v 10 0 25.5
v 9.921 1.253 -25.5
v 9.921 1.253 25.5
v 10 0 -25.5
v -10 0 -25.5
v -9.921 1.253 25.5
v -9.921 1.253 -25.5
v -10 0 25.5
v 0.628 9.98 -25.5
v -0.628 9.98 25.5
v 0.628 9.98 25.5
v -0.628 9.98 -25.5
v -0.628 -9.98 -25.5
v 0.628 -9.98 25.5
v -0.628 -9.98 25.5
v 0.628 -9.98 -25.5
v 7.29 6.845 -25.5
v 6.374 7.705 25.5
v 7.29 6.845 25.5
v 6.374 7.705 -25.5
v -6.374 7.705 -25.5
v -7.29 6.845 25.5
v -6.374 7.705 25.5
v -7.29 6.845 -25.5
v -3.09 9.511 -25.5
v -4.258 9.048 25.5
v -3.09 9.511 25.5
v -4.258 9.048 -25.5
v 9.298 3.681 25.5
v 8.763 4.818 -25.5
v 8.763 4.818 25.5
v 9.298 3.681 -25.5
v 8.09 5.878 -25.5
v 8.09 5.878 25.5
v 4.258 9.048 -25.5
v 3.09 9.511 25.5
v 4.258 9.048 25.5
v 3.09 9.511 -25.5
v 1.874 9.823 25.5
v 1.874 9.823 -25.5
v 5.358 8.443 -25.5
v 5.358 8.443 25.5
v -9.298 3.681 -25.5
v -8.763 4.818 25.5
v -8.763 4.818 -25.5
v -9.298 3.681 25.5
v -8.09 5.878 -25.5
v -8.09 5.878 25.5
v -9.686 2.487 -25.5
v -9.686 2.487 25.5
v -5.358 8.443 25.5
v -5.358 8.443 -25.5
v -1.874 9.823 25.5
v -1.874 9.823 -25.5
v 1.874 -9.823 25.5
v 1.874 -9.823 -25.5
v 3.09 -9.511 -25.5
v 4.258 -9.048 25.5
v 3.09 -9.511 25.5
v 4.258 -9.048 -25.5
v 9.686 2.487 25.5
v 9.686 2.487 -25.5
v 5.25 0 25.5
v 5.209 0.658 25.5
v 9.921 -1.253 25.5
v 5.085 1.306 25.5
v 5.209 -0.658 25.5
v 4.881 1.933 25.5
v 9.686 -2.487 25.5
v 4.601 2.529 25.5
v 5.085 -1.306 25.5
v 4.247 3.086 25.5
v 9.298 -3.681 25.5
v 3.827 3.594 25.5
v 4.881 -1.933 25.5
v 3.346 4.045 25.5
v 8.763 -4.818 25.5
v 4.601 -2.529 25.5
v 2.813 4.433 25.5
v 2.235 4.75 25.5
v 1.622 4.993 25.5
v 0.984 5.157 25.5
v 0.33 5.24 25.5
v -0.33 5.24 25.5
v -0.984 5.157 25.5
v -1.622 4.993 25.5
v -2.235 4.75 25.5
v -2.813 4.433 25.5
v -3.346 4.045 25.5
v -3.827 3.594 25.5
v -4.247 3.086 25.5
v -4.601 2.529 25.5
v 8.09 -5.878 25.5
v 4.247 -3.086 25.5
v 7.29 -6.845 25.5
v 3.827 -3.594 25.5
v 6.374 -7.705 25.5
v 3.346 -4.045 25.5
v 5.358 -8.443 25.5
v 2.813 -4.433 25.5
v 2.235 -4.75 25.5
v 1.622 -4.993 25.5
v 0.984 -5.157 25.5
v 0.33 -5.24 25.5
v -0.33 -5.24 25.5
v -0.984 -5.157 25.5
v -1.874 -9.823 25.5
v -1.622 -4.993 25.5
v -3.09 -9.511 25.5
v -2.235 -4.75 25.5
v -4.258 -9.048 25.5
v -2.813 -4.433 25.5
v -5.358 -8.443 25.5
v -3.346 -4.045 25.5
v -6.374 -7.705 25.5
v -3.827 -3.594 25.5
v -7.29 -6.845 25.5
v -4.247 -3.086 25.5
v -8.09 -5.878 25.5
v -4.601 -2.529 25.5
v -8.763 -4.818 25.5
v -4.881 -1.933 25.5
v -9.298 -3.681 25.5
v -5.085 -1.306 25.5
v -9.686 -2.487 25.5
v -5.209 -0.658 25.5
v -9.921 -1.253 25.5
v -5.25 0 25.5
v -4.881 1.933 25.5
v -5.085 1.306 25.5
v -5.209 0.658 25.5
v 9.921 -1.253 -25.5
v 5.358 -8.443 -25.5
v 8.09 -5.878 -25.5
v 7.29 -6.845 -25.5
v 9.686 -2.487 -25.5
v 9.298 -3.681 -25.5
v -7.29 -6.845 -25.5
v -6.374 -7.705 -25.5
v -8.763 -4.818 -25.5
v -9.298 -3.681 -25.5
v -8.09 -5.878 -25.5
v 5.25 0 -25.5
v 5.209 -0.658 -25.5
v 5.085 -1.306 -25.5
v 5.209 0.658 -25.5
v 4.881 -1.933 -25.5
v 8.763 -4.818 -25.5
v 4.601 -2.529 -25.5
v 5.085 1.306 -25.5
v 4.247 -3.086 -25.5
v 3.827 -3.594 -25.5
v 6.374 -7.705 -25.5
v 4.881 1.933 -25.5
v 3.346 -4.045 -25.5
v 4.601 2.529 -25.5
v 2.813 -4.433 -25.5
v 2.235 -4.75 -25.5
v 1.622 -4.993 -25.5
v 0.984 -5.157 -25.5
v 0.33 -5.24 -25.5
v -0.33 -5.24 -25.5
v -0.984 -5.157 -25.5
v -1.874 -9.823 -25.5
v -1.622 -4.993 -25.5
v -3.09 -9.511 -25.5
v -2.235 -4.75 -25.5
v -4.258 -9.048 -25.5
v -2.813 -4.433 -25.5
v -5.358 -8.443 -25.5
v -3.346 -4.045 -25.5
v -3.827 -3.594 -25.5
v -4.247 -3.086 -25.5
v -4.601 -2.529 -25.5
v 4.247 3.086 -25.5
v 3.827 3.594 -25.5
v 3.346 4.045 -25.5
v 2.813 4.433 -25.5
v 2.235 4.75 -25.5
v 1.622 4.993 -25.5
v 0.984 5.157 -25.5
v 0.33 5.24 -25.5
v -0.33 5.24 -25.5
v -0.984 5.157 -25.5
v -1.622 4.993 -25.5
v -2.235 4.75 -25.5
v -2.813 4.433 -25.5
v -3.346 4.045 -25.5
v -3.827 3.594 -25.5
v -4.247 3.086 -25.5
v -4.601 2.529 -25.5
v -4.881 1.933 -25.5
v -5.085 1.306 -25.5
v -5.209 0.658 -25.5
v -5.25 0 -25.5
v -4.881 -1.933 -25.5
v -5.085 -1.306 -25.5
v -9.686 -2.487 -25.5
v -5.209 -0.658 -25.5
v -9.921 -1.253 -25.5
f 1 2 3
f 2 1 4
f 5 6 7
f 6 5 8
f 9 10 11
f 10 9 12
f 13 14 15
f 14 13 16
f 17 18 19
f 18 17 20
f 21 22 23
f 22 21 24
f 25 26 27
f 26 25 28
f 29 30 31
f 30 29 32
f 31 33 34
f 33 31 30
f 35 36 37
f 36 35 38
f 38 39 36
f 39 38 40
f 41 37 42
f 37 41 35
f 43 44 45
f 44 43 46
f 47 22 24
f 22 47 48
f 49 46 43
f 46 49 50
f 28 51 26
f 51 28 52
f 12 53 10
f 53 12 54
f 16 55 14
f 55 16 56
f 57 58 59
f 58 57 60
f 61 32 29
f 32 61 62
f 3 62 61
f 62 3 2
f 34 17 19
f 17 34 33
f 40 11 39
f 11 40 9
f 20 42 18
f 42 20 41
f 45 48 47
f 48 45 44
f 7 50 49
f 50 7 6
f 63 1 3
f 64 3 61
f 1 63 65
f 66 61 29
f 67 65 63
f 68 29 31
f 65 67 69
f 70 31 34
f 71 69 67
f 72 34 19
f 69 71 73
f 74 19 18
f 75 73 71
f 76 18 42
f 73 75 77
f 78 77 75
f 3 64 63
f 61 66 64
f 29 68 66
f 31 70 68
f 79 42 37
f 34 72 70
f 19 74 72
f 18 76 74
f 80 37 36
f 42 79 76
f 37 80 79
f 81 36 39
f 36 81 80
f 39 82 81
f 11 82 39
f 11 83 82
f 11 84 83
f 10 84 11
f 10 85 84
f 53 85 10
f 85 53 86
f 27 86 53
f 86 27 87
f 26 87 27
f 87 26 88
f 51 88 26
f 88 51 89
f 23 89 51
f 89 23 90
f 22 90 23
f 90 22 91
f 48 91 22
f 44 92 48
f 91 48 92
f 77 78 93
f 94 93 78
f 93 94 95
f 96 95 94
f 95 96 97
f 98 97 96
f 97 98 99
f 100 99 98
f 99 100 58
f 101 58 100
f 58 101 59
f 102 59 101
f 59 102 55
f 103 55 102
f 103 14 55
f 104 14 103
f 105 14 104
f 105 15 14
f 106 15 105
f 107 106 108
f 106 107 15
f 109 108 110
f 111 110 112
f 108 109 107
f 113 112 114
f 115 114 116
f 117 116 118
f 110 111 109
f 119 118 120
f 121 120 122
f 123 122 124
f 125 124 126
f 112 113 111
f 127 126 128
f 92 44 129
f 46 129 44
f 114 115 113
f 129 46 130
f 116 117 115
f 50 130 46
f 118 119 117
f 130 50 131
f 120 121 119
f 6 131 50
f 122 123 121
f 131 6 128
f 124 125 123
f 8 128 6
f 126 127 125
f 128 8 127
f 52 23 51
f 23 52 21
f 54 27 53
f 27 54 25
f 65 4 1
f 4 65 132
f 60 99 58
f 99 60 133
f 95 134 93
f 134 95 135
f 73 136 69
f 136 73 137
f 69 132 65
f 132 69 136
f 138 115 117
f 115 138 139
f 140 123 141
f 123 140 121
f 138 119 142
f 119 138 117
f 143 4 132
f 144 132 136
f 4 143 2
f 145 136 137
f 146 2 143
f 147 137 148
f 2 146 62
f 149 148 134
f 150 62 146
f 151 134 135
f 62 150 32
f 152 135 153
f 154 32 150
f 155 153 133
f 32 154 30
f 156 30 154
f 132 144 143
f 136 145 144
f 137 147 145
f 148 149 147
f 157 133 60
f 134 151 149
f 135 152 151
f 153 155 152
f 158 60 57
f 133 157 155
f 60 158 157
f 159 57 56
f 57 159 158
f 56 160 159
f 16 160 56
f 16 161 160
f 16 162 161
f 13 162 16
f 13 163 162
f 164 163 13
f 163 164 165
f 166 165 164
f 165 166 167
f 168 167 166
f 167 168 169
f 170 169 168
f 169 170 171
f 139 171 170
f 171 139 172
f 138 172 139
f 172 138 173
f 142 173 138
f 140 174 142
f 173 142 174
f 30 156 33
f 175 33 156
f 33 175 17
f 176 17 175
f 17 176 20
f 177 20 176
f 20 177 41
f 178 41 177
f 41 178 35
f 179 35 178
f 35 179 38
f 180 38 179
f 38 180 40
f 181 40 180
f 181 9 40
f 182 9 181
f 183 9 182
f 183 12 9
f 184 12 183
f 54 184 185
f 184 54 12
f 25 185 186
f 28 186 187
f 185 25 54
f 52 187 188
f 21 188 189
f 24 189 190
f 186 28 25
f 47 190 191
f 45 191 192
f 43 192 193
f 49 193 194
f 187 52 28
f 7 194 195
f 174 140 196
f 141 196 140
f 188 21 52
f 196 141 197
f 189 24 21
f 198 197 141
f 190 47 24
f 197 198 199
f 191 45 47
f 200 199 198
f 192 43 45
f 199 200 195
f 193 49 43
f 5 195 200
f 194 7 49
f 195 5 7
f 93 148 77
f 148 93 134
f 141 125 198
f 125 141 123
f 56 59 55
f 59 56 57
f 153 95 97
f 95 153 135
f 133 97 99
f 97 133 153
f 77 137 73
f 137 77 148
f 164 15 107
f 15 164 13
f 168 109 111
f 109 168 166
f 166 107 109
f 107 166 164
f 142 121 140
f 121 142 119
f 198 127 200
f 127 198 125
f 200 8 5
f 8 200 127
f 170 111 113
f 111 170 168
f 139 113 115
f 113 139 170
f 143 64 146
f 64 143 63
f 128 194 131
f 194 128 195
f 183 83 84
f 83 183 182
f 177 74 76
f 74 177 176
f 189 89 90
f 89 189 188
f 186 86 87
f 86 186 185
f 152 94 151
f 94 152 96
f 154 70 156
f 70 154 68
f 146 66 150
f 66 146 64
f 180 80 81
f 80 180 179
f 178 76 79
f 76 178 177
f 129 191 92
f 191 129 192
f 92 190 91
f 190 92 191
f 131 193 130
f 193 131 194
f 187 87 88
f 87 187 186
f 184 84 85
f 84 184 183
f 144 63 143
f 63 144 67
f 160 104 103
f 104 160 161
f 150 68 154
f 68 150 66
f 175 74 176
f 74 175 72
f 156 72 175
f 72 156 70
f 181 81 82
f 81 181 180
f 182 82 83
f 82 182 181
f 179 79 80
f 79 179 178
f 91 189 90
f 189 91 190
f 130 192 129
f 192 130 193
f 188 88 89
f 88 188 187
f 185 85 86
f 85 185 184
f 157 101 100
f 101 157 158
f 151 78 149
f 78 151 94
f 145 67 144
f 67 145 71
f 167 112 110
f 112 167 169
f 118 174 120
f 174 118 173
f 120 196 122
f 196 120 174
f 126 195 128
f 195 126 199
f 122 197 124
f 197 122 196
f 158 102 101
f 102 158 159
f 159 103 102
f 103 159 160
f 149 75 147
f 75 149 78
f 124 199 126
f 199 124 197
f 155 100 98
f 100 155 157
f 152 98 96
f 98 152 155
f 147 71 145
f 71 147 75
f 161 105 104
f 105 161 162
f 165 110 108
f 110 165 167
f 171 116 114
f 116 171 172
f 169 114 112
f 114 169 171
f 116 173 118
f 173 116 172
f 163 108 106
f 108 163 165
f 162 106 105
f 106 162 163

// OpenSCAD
$fn = 50;


difference() {
	union() {
		translate(v = [0, 0, -25.5000000000]) {
			cylinder(h = 51, r = 10.0000000000);
		}
	}
	union() {
		translate(v = [0, 0, -100.0000000000]) {
			cylinder(h = 200, r = 5.2500000000);
		}
	}
}
